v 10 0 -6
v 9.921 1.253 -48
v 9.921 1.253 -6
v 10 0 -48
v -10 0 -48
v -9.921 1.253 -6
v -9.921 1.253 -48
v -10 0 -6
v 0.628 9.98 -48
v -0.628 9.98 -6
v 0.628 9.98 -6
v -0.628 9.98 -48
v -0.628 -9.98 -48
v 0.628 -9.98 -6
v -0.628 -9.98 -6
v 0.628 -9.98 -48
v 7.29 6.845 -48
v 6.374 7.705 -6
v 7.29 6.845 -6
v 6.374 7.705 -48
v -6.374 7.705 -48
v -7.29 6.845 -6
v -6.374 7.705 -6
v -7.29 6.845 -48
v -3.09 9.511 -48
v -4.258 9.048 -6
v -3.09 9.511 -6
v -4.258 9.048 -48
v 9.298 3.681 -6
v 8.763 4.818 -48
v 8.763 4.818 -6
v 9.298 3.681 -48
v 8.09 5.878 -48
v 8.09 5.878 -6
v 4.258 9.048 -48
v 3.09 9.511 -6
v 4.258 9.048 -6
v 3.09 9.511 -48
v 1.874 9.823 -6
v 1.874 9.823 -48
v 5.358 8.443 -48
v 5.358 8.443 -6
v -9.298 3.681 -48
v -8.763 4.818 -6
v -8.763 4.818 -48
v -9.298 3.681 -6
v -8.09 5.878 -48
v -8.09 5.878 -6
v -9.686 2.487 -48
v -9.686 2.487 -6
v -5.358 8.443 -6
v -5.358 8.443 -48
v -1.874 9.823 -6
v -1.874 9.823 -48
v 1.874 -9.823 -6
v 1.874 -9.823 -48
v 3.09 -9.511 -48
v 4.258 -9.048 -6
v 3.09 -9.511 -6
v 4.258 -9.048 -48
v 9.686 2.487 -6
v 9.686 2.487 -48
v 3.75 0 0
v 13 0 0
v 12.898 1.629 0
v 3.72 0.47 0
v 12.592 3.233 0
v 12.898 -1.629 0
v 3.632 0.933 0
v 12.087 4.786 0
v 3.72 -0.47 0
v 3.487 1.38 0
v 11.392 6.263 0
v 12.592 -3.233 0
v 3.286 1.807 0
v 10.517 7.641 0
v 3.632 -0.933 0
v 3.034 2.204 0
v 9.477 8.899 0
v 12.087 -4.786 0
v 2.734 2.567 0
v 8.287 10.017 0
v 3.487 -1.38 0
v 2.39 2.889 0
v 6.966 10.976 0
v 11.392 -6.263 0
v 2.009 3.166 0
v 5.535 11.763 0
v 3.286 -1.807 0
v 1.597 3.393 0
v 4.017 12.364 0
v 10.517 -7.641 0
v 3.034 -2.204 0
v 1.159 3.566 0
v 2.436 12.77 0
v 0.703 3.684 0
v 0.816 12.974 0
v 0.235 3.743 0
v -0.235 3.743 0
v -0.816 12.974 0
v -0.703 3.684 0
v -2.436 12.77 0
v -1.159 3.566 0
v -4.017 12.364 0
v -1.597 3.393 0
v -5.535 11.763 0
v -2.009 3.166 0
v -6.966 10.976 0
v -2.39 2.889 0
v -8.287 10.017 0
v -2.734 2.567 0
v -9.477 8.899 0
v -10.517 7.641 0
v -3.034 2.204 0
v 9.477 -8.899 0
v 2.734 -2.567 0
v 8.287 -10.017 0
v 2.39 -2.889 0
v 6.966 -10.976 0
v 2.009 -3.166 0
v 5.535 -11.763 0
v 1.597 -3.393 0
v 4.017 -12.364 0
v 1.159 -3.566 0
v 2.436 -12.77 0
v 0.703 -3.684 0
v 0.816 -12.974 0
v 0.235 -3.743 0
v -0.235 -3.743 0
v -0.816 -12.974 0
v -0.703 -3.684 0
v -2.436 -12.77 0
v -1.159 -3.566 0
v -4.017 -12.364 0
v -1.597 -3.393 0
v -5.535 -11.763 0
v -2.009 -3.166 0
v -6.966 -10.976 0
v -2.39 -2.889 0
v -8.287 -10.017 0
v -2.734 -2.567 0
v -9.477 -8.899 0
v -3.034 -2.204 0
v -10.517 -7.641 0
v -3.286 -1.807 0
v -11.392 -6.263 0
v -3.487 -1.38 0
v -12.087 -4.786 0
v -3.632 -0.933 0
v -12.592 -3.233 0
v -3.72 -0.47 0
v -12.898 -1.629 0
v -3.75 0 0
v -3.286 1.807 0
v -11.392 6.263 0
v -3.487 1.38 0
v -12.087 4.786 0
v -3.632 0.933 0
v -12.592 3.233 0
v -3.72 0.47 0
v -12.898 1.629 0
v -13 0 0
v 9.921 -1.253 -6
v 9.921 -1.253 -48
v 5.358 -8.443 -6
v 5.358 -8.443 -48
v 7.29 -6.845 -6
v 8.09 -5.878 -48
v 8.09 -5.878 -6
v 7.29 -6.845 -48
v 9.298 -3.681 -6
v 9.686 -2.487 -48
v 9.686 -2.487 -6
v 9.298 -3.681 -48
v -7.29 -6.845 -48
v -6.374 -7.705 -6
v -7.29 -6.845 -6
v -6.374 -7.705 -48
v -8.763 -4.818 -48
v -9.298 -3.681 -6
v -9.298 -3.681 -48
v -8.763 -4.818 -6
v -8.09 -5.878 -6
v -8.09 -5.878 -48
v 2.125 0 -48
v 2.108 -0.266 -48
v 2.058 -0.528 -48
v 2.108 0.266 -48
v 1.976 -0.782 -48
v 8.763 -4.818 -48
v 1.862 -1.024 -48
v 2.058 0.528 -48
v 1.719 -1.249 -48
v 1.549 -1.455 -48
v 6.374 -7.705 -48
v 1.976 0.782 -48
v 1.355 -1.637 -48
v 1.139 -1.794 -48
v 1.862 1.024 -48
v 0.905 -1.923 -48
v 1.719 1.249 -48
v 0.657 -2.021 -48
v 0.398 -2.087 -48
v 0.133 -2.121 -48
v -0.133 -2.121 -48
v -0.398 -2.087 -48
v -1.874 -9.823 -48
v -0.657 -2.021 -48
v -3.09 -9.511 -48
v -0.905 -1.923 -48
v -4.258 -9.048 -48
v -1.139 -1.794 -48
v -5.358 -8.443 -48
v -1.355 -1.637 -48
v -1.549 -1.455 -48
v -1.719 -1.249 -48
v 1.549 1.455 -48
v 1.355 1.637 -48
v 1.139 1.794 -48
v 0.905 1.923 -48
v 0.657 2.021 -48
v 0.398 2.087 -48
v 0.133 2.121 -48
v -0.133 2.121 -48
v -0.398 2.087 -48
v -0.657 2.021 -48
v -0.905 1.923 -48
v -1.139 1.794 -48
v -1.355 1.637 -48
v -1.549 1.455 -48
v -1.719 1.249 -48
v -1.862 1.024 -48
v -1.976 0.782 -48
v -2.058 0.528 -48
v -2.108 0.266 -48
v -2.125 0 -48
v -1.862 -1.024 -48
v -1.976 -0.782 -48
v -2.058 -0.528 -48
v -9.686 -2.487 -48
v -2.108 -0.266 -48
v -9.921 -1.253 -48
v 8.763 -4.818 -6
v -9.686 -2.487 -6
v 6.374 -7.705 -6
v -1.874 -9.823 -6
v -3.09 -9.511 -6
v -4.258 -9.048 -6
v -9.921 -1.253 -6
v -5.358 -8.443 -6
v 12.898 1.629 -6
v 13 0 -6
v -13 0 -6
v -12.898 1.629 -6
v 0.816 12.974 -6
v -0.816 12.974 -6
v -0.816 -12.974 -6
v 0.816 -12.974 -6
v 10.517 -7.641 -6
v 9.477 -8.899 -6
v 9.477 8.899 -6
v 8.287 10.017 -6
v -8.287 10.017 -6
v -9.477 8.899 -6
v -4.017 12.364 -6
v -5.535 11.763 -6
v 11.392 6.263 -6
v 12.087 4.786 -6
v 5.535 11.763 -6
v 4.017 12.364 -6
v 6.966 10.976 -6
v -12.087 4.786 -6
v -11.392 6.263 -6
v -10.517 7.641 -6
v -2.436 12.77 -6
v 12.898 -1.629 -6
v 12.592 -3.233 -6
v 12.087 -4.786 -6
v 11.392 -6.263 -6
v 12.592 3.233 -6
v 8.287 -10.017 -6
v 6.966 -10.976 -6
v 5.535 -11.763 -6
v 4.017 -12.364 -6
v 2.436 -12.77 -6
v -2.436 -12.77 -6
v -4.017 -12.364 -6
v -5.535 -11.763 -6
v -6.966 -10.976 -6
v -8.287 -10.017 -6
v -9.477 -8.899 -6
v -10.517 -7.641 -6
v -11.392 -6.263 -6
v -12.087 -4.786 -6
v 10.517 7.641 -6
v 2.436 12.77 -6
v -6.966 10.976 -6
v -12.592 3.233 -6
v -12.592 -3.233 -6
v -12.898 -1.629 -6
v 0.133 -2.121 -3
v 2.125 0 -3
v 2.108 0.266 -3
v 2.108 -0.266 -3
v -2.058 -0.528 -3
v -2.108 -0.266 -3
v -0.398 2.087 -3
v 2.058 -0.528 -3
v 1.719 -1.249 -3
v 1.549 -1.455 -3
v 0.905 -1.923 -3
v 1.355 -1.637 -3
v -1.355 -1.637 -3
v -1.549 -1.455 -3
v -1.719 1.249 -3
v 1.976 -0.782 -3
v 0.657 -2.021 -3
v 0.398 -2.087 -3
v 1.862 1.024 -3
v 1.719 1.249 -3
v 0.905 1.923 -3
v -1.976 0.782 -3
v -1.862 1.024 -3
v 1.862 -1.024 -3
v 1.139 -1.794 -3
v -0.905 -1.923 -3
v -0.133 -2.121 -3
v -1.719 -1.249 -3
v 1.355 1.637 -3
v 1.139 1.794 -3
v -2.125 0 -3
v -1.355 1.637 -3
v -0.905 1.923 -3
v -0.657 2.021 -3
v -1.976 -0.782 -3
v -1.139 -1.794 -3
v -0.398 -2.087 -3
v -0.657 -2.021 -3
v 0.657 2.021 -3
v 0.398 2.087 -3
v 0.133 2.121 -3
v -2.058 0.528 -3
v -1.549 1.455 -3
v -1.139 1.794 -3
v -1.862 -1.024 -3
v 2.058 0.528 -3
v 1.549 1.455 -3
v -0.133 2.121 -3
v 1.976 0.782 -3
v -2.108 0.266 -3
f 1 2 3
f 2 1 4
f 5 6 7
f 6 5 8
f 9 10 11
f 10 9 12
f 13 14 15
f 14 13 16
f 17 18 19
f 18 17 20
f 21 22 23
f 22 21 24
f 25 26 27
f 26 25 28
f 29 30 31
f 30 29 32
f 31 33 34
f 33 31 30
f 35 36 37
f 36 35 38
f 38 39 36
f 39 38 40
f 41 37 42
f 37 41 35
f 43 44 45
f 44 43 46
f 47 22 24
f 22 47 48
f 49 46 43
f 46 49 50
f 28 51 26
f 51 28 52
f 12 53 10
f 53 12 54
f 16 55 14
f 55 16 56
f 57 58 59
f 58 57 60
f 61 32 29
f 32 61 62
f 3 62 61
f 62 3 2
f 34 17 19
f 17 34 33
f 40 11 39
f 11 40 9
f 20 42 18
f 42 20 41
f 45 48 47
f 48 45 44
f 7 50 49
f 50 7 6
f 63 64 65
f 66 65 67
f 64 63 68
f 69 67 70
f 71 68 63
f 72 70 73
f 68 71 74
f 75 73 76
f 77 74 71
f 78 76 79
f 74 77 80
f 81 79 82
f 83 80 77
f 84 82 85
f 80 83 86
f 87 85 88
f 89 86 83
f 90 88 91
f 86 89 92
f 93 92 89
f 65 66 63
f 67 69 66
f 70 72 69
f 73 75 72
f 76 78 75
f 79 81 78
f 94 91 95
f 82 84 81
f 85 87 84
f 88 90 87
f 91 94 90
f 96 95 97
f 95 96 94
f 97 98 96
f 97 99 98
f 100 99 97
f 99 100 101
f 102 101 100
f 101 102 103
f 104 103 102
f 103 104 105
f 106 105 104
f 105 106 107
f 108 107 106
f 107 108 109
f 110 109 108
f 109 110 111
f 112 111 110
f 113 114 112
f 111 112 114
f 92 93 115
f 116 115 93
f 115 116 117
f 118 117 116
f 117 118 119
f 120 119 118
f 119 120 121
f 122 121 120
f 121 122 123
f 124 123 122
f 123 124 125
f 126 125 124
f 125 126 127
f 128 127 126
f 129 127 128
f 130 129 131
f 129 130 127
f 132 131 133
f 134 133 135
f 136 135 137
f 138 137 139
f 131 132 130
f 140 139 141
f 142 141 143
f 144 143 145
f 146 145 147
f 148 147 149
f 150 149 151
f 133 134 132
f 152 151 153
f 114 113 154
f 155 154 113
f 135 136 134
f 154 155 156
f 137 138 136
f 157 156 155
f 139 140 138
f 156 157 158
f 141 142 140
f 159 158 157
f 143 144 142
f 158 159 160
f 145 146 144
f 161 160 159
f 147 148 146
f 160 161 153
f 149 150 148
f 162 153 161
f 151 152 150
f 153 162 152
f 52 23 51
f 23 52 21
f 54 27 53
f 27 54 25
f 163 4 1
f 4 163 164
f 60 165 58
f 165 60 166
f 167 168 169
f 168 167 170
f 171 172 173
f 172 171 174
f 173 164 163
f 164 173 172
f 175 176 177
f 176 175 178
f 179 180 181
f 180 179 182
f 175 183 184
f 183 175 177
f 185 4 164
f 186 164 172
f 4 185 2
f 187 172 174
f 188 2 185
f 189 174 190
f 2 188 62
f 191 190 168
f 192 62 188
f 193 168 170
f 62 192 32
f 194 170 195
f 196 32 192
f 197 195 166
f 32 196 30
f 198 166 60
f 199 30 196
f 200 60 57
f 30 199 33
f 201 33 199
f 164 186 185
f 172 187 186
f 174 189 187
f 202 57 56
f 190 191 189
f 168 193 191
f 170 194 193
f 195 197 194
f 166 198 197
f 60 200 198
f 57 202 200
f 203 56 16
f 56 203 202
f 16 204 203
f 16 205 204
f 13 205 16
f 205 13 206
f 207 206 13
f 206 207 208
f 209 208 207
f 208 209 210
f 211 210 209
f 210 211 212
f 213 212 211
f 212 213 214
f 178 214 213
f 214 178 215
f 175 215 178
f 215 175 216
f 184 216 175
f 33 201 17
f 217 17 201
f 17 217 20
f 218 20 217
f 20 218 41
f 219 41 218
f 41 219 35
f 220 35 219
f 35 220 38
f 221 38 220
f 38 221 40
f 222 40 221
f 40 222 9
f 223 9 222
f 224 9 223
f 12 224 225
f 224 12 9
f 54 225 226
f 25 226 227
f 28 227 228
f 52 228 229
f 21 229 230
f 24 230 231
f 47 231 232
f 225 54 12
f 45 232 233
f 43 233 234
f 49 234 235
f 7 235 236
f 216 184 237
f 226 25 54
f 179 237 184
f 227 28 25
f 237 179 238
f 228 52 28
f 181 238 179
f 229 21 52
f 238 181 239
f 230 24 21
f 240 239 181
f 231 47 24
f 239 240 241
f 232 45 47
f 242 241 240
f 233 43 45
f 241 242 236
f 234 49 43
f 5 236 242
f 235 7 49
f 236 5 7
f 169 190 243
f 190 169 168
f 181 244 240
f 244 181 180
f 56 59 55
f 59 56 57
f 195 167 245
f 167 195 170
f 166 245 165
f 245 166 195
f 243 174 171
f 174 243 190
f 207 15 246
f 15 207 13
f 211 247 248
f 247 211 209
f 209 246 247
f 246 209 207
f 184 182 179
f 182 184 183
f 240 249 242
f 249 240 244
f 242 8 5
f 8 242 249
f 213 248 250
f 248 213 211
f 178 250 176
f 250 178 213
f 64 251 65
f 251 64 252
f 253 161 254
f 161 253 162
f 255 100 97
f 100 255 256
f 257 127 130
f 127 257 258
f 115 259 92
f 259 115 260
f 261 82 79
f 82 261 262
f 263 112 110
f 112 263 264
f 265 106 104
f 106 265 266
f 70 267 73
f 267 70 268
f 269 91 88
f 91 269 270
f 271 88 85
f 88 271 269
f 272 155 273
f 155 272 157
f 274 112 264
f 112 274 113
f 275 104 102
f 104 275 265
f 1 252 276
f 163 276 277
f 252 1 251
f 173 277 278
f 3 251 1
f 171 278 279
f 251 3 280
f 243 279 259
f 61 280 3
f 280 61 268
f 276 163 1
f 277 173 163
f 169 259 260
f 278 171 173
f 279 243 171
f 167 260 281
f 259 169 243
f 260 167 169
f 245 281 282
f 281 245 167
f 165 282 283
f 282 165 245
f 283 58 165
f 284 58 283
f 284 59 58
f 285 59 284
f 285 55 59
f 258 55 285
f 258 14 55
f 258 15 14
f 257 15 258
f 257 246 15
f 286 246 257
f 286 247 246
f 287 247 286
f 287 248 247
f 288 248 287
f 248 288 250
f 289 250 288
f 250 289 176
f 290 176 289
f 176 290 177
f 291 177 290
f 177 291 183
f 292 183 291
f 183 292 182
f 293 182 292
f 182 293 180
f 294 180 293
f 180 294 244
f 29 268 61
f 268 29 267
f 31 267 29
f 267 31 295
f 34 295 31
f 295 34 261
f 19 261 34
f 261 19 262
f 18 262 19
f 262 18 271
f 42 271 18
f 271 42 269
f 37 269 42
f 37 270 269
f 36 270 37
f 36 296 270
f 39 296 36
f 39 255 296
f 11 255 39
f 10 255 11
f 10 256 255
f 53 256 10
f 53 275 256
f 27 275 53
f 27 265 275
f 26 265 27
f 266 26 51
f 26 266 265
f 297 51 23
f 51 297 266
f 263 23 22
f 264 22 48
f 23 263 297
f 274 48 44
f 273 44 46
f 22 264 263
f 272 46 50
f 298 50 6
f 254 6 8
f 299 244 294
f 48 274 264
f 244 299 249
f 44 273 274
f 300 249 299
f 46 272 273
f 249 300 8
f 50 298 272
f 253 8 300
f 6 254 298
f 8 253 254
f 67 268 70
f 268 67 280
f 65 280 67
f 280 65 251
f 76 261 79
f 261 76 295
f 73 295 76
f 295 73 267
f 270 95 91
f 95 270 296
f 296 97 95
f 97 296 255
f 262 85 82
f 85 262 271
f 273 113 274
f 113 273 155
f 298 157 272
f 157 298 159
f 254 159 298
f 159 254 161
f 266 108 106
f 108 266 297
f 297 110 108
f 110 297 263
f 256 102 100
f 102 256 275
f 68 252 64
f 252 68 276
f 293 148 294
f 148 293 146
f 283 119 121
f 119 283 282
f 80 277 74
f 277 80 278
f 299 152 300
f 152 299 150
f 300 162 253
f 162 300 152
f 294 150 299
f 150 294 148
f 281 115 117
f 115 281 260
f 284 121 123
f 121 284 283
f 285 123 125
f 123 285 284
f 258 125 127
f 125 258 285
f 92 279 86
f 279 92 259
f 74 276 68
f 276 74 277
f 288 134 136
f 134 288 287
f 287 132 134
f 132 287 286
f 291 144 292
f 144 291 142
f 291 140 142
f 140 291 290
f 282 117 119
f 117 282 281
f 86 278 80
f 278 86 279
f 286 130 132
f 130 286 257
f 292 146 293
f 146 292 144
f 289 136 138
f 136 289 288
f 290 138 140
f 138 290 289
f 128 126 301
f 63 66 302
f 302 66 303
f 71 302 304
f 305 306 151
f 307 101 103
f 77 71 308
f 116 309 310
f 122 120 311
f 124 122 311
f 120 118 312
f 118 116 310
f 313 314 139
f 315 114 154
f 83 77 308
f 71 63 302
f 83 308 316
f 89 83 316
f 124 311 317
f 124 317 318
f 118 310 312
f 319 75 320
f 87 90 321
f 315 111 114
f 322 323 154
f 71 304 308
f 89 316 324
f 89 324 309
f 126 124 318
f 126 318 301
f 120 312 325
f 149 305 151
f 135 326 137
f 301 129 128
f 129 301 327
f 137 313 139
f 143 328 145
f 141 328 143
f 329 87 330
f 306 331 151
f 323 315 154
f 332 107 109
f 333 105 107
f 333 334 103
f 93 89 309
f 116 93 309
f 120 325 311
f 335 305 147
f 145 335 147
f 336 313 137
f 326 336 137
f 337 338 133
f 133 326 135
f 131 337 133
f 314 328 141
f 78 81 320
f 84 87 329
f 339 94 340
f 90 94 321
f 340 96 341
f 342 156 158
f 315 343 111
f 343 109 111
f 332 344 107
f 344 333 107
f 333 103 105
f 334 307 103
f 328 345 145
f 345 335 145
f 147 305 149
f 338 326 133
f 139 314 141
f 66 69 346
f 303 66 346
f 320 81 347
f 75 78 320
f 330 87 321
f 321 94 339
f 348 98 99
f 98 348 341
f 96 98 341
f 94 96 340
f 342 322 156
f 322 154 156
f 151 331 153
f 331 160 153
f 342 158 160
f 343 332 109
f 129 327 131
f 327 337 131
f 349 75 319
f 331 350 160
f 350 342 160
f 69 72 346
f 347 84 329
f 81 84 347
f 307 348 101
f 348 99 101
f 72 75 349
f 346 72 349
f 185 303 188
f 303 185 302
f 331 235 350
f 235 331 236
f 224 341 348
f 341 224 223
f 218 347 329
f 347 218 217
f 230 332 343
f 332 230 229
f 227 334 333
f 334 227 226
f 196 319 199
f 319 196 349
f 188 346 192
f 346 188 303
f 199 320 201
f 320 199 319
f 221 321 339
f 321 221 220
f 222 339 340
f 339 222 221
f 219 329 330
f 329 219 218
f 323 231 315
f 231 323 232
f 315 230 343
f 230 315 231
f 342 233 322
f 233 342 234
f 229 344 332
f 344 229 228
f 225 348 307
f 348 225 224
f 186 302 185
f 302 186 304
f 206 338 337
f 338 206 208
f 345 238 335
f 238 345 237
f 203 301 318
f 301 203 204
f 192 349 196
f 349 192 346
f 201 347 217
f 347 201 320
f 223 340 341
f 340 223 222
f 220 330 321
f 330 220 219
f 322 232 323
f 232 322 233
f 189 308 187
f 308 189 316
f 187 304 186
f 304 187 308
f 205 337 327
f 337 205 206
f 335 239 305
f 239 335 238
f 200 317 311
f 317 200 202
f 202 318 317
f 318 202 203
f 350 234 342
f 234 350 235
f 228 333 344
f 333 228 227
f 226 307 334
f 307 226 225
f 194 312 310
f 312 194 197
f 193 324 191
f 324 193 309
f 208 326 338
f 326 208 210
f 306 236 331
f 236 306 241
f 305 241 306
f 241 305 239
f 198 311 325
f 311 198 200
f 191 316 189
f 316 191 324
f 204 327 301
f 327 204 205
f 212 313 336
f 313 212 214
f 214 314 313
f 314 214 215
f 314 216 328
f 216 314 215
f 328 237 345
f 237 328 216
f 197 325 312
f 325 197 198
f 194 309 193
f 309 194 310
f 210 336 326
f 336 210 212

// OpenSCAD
$fn = 50;


difference() {
	union() {
		translate(v = [0, 0, -48.0000000000]) {
			cylinder(h = 48, r = 10.0000000000);
		}
		translate(v = [0, 0, -6.0000000000]) {
			cylinder(h = 6, r = 13.0000000000);
		}
	}
	union() {
		translate(v = [0, 0, 0]) {
			rotate(a = [0, 0, 0]) {
				difference() {
					union() {
						#translate(v = [0, 0, -48.0000000000]) {
							cylinder(h = 48, r = 2.0000000000);
						}
						#translate(v = [0, 0, -3]) {
							cylinder(h = 3, r = 10.0000000000, r1 = 2.1250000000, r2 = 3.7500000000);
						}
						#translate(v = [0, 0, -48.0000000000]) {
							cylinder(h = 48, r = 2.1250000000);
						}
						#translate(v = [0, 0, -48.0000000000]) {
							cylinder(h = 48, r = 2.0000000000);
						}
					}
					union();
				}
			}
		}
	}
}
